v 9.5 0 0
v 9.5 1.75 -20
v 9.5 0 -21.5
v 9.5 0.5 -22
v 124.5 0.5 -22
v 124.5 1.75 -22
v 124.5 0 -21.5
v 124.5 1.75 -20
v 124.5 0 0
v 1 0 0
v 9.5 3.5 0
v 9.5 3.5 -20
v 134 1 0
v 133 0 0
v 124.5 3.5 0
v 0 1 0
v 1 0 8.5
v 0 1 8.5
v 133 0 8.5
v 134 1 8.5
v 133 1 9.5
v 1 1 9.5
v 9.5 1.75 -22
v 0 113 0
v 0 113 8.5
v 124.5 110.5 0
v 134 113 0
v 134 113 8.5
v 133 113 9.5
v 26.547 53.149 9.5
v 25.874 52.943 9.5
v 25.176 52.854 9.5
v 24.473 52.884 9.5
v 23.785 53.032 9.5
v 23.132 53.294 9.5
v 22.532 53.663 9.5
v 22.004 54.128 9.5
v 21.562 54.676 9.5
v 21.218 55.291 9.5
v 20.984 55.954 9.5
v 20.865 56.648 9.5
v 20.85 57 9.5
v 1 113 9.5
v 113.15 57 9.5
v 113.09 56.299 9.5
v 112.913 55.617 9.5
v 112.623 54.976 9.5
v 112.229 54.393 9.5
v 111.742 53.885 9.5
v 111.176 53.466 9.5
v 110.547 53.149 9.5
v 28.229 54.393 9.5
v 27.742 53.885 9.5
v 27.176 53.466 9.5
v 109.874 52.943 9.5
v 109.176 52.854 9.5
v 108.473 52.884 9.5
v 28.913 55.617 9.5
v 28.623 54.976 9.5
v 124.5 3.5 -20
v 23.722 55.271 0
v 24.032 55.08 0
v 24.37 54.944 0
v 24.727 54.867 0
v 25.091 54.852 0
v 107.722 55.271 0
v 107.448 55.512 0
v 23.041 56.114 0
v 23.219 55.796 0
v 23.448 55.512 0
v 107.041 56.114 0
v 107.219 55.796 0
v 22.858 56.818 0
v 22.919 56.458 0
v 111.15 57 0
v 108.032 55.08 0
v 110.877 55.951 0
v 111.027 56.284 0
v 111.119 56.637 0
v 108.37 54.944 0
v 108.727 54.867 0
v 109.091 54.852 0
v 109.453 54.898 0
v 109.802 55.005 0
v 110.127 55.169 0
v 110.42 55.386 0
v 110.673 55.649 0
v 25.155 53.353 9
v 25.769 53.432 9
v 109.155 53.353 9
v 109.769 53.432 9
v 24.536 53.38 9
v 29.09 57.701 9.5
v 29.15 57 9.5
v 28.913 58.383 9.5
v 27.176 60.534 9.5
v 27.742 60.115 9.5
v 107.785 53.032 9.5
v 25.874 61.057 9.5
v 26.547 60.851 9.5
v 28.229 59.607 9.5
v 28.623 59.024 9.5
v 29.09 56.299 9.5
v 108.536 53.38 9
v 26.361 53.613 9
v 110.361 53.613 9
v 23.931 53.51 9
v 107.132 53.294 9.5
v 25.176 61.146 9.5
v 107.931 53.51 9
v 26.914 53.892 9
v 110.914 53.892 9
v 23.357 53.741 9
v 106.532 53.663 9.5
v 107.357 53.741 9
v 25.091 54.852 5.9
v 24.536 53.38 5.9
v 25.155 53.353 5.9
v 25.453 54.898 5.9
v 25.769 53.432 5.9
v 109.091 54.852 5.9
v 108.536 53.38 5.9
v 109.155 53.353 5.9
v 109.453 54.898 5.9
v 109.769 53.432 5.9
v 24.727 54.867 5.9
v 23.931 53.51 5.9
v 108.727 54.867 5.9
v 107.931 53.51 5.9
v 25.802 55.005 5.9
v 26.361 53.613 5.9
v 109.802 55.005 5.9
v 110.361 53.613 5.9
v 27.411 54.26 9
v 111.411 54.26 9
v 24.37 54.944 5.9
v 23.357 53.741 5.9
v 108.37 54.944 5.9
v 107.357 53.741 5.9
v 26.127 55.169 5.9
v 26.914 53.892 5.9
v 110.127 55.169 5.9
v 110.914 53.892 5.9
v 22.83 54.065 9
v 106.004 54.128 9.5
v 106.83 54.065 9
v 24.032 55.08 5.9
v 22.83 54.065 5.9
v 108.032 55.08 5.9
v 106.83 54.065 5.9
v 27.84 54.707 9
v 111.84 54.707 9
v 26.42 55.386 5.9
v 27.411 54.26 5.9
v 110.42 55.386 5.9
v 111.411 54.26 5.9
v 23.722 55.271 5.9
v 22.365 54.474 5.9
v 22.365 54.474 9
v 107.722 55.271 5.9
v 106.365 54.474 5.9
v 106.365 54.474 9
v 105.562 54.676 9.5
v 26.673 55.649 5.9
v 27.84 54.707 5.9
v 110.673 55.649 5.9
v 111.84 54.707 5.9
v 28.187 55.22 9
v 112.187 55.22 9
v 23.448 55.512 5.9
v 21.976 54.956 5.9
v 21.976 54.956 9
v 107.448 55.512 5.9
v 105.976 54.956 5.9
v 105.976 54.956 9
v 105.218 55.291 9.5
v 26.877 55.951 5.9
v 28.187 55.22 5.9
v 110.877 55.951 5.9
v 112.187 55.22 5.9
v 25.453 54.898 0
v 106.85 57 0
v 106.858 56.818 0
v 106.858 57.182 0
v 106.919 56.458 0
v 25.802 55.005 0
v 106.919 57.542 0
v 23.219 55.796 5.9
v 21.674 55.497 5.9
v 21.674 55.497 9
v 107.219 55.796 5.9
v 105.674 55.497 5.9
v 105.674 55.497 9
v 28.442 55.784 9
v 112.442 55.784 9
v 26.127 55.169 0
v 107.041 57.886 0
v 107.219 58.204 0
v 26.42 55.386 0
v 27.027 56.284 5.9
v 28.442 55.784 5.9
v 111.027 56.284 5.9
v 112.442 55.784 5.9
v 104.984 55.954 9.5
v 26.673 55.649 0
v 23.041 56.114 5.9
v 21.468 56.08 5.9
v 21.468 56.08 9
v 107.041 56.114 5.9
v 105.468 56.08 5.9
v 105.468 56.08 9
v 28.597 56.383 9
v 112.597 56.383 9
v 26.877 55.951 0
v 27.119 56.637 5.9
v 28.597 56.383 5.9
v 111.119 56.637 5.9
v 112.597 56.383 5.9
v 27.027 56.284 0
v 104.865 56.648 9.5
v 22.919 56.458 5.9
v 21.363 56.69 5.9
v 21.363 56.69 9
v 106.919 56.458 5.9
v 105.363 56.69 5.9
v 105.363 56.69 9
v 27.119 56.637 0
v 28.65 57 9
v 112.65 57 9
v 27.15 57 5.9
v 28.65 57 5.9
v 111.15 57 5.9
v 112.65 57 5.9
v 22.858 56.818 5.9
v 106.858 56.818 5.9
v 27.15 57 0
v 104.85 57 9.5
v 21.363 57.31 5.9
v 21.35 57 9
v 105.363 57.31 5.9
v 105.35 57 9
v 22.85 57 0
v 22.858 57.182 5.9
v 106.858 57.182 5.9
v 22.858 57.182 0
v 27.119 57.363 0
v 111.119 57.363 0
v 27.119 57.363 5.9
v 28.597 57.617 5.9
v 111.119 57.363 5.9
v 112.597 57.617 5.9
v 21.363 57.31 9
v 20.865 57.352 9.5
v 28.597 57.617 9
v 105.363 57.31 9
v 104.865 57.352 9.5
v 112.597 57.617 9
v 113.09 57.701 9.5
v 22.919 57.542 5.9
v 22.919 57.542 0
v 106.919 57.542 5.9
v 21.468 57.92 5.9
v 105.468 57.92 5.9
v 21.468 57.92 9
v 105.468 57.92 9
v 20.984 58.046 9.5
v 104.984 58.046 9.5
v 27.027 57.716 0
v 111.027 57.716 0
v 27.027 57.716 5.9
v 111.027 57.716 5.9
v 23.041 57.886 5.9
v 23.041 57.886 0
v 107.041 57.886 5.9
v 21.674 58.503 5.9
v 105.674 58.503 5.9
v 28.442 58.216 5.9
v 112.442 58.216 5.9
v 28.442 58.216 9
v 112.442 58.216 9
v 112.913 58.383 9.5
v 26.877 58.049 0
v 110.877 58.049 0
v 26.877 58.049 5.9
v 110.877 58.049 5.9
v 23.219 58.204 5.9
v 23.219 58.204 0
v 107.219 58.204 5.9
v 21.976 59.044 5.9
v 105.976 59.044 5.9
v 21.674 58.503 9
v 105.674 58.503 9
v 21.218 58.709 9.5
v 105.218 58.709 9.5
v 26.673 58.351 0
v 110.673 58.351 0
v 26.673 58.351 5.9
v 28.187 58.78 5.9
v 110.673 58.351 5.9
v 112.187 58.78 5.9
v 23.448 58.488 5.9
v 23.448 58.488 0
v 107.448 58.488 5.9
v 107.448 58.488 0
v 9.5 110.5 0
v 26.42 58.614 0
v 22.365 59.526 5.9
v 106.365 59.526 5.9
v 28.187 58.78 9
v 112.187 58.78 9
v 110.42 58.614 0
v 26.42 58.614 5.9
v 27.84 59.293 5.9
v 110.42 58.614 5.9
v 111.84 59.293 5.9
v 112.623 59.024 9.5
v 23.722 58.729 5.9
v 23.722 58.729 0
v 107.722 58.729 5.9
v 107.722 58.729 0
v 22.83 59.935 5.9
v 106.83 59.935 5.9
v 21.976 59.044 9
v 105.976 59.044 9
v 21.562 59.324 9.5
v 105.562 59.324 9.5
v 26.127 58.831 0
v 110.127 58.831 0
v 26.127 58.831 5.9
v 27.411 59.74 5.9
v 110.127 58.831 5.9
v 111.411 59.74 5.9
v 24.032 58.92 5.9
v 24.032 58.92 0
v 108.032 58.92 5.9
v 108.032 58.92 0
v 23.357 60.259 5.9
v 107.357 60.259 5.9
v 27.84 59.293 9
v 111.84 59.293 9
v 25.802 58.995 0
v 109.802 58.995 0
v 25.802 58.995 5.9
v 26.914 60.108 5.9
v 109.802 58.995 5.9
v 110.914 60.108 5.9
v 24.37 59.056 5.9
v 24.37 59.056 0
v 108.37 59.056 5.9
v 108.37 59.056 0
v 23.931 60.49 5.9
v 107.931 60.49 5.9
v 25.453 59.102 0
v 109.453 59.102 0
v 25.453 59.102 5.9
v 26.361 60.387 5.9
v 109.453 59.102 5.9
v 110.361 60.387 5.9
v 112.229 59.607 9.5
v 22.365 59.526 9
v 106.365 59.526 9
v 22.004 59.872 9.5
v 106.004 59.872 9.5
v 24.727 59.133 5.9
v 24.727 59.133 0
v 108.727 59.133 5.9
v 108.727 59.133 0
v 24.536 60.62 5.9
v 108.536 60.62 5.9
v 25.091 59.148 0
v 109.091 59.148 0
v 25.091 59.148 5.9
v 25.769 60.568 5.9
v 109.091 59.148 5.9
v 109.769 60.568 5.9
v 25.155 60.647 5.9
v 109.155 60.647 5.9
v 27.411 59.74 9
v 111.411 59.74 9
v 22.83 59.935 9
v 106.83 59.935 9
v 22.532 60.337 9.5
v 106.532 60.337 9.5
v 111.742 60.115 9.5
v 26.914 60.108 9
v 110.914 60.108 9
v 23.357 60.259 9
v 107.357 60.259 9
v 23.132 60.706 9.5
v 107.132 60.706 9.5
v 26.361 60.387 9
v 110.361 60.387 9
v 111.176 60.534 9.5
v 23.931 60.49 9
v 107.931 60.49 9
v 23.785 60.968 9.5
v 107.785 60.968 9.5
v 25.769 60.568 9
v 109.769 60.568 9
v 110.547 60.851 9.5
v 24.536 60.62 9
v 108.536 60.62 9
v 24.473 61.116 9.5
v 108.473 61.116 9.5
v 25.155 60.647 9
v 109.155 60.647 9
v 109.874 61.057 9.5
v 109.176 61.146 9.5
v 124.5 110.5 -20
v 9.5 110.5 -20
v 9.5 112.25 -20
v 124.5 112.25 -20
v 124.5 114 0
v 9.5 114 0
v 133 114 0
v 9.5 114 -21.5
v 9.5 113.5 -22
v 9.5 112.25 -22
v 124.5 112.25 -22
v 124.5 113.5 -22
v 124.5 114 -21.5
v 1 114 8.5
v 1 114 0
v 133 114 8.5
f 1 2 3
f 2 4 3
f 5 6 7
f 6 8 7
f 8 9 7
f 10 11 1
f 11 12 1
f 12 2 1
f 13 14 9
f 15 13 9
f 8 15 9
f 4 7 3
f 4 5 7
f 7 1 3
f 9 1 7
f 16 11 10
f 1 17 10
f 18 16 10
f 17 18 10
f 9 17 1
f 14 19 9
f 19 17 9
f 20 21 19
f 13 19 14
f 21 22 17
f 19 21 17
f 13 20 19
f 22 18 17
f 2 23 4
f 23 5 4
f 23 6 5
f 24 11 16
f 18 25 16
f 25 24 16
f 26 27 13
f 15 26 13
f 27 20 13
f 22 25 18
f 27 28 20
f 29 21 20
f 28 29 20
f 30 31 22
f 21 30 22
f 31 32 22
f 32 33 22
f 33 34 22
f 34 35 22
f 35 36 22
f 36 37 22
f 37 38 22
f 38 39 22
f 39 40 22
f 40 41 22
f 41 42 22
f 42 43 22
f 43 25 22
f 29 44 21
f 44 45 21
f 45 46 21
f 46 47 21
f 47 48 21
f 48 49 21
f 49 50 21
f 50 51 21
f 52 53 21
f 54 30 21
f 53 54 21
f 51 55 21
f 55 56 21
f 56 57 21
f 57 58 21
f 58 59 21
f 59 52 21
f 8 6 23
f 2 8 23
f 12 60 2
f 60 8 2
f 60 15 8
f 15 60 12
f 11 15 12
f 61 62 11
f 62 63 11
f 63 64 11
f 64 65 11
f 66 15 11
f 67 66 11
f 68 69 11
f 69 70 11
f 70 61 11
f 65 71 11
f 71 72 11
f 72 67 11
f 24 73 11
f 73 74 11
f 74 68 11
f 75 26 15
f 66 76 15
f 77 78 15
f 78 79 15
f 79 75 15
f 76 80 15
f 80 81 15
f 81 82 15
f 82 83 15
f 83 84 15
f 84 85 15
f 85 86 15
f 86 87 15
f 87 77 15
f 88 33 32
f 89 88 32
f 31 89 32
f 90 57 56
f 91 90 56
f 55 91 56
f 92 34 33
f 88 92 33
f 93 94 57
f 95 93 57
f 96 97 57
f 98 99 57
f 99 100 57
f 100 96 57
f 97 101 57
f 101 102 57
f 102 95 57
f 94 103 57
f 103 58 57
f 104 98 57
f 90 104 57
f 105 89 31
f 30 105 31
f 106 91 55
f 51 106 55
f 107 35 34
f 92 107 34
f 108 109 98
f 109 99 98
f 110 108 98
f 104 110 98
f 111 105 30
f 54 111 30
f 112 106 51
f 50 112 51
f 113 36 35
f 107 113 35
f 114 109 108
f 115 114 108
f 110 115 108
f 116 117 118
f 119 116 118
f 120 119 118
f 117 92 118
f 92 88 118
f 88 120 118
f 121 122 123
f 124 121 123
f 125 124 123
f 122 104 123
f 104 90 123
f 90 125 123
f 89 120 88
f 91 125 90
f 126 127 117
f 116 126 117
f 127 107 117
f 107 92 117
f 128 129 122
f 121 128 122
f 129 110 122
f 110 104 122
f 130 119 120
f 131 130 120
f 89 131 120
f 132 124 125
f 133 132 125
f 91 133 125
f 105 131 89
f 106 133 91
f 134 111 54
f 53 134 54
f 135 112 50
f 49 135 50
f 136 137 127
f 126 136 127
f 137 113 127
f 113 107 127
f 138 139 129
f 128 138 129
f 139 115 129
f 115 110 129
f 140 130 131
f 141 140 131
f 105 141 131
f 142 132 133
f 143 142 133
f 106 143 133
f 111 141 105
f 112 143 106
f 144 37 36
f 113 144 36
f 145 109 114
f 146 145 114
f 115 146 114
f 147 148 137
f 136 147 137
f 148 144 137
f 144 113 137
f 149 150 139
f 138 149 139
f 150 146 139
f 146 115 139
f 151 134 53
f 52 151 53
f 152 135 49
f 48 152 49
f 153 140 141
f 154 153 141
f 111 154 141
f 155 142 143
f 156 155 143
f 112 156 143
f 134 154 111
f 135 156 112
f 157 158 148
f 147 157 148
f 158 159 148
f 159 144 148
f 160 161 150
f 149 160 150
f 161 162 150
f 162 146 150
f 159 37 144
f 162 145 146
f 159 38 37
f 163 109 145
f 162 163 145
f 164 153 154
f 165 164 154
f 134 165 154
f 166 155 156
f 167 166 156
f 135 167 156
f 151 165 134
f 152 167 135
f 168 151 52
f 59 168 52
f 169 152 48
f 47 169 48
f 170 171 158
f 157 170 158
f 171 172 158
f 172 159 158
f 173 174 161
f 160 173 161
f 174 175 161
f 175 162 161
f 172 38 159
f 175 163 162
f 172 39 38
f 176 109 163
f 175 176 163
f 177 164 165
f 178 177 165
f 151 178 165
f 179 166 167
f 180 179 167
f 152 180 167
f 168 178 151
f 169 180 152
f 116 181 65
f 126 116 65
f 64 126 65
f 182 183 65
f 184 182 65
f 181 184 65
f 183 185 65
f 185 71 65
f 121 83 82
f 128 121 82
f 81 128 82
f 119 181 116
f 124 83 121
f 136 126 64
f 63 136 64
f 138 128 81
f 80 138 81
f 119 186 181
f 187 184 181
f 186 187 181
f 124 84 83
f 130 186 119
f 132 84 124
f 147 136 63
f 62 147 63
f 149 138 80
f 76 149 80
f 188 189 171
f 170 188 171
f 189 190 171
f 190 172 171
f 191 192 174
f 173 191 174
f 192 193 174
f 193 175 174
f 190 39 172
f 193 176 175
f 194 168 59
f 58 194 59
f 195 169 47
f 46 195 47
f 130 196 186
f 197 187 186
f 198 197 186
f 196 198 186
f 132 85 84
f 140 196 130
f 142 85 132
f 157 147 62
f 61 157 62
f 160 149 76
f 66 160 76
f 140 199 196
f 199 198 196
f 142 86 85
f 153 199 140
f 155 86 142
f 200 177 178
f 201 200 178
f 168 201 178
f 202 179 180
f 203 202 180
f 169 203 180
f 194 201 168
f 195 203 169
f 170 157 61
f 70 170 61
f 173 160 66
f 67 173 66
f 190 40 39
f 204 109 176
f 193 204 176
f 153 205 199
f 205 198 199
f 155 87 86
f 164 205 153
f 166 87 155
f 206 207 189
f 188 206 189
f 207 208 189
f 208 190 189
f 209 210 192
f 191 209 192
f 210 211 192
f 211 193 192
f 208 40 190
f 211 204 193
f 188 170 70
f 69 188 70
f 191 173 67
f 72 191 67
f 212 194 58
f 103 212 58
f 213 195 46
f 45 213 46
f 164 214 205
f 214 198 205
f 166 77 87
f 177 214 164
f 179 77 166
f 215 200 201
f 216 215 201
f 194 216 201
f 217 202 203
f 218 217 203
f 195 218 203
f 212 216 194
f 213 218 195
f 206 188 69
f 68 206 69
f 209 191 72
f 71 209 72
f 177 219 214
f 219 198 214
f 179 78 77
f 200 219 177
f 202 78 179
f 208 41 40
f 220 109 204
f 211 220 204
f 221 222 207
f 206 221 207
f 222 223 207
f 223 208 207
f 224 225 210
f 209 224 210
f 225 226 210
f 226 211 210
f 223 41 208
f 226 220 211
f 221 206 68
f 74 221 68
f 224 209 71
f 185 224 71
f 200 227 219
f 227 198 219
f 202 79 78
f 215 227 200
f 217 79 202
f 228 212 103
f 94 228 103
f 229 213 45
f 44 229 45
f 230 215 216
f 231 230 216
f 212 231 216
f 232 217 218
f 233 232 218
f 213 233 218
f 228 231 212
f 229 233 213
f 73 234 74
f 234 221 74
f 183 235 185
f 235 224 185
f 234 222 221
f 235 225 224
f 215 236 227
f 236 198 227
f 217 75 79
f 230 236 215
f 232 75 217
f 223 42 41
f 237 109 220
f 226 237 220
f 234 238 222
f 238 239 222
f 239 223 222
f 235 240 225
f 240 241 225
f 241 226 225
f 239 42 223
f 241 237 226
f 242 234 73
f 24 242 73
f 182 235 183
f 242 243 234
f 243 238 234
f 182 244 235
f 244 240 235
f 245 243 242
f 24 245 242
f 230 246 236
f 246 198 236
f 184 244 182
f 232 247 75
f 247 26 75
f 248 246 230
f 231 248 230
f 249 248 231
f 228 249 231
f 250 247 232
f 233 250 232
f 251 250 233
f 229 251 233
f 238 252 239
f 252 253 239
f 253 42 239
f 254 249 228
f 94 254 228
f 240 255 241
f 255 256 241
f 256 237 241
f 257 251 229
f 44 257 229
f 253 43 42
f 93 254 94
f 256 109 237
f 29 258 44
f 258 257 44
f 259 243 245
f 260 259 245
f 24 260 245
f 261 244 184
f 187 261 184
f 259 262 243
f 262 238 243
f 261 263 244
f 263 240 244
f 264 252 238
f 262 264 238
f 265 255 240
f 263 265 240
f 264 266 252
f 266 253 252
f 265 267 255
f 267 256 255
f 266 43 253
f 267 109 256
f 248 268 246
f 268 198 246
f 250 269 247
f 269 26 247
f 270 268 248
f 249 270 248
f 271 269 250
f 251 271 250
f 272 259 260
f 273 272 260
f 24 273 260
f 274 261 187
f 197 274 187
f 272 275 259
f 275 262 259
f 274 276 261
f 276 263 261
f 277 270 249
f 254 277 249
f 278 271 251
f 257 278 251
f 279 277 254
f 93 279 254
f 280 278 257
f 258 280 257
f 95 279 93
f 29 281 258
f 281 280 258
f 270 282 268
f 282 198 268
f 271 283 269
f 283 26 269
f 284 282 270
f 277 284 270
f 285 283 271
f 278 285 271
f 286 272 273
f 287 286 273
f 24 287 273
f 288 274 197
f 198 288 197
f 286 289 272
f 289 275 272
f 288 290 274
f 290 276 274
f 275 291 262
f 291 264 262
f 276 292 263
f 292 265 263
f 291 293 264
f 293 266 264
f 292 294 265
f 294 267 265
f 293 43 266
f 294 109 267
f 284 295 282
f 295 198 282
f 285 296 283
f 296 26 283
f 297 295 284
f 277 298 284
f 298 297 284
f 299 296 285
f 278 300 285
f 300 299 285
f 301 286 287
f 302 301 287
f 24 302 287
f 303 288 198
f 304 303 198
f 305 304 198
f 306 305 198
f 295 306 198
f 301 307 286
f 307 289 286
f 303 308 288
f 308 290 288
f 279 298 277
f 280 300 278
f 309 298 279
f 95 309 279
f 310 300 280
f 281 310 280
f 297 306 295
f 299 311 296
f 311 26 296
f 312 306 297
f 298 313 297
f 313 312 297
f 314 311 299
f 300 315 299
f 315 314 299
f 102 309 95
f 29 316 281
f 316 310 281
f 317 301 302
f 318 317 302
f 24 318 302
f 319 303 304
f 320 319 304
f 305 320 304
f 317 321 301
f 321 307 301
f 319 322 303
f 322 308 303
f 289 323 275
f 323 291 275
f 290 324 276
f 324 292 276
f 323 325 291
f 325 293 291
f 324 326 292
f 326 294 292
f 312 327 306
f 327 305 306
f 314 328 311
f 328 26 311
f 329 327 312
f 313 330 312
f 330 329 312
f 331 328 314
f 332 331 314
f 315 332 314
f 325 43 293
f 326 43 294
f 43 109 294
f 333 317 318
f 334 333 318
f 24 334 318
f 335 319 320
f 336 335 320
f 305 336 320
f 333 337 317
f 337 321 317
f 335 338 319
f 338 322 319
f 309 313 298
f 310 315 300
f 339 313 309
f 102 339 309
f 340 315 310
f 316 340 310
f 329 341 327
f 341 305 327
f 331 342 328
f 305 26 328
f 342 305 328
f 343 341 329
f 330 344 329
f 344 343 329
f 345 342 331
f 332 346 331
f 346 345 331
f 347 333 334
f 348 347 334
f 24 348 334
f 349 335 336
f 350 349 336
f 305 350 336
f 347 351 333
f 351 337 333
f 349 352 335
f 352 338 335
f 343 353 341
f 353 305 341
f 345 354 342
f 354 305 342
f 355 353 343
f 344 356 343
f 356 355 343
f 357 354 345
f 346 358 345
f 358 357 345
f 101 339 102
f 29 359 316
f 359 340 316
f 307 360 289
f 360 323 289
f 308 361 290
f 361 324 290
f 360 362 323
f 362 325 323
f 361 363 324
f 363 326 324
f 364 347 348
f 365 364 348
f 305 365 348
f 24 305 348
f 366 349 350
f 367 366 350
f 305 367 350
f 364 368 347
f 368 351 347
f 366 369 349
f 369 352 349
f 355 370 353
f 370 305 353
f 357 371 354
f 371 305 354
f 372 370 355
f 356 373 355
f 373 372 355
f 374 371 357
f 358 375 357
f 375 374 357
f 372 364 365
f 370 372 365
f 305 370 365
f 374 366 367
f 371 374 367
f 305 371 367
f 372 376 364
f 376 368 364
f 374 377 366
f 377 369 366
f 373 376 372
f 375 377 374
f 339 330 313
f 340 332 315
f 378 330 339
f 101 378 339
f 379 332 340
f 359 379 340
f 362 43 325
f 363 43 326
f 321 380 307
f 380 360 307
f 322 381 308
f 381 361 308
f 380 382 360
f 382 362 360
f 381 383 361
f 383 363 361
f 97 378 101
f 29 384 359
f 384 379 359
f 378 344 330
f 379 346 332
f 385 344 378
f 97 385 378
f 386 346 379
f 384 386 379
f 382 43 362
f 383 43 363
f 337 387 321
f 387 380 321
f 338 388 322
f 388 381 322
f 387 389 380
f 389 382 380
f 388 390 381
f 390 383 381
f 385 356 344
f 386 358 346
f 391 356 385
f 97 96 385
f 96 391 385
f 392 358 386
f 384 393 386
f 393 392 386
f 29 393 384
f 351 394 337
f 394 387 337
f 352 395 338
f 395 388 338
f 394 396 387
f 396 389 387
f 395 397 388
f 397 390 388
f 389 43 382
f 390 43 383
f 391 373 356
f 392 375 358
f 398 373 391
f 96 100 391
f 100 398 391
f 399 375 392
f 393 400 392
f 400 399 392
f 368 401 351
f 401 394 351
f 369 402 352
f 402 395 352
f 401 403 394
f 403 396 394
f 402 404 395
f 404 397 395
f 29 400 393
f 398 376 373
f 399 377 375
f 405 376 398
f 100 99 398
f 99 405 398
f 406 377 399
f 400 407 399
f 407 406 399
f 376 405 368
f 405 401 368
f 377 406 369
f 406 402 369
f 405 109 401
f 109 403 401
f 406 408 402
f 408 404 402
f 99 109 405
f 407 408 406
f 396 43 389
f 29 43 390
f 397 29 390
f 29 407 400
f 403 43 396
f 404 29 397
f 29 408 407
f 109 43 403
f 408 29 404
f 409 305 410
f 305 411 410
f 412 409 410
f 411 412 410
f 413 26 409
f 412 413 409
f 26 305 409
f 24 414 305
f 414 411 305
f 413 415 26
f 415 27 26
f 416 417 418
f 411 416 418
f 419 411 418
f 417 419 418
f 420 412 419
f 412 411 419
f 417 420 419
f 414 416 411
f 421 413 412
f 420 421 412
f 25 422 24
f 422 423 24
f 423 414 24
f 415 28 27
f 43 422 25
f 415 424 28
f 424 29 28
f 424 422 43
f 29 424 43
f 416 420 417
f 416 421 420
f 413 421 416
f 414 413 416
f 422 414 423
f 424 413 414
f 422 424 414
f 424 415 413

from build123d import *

# Parameters (mm, degrees)
SKETCH1_W           = 134
SKETCH1_H           = 114
BOSS_EXTRUDE1_DEPTH = 9.5
SKETCH2_W           = 115
SKETCH2_H           = 3.5
BOSS_EXTRUDE2_DEPTH = 20
SKETCH3_R           = 2.15
CUT_EXTRUDE1_DEPTH  = 179.387919995
SKETCH4_R           = 3.65
CUT_EXTRUDE2_DEPTH  = 3.6
CHAMFER1_SIZE       = 1
CHAMFER4_SIZE       = 0.5
SKETCH5_W           = 115
SKETCH5_H           = 1.75
BOSS_EXTRUDE3_DEPTH = 2
CHAMFER5_SIZE       = 0.5


with BuildPart() as part:
    # Sketch1 → Boss-Extrude1 (new body)
    with BuildSketch(Plane.XY):
        with Locations((67, 57)):
            Rectangle(SKETCH1_W, SKETCH1_H)
    extrude(amount=BOSS_EXTRUDE1_DEPTH)

    # Sketch2 → Boss-Extrude2 (add)
    with BuildSketch(Plane(origin=(0, 0, 0), x_dir=(-1, 0, 0), z_dir=(0, 0, -1))):
        Polygon((-67, 114), (-124.5, 114), (-124.5, 110.5), (-9.5, 110.5), (-9.5, 114), align=None)
        with Locations((-67, 1.75)):
            Rectangle(SKETCH2_W, SKETCH2_H)
    extrude(amount=BOSS_EXTRUDE2_DEPTH)

    # Sketch3 → Cut-Extrude1 (cut, through all)
    with BuildSketch(Plane.XY.offset(9.5)):
        with Locations((25, 57)):
            Circle(SKETCH3_R)
        with Locations((109, 57)):
            Circle(SKETCH3_R)
    extrude(amount=-CUT_EXTRUDE1_DEPTH, mode=Mode.SUBTRACT)

    # Sketch4 → Cut-Extrude2 (cut)
    with BuildSketch(Plane.XY.offset(9.5)):
        with Locations((25, 57)):
            Circle(SKETCH4_R)
        with Locations((109, 57)):
            Circle(SKETCH4_R)
    extrude(amount=-CUT_EXTRUDE2_DEPTH, mode=Mode.SUBTRACT)

    # Chamfer1
    chamfer1_edges = [part.edges().sort_by_distance(p)[0] for p in [
        (134, 57, 9.5),
        (67, 114, 9.5),
        (0, 57, 9.5),
        (67, 0, 9.5),
        (0, 114, 4.75),
        (134, 114, 4.75),
        (134, 0, 4.75),
        (0, 0, 4.75),
    ]]
    chamfer(chamfer1_edges, length=CHAMFER1_SIZE)

    # Chamfer4
    chamfer4_edges = [part.edges().sort_by_distance(p)[0] for p in [
        (21.35, 57, 9.5),
        (105.35, 57, 9.5),
    ]]
    chamfer(chamfer4_edges, length=CHAMFER4_SIZE)

    # Sketch5 → Boss-Extrude3 (add)
    with BuildSketch(Plane(origin=(0, 0, -20), x_dir=(-1, 0, 0), z_dir=(0, 0, -1))):
        with Locations((-67, 113.125)):
            Rectangle(SKETCH5_W, SKETCH5_H)
        with Locations((-67, 0.875)):
            Rectangle(SKETCH5_W, SKETCH5_H)
    extrude(amount=BOSS_EXTRUDE3_DEPTH)

    # Chamfer5
    chamfer5_edges = [part.edges().sort_by_distance(p)[0] for p in [
        (67, 114, -22),
        (67, 0, -22),
    ]]
    chamfer(chamfer5_edges, length=CHAMFER5_SIZE)


solid = part.part
